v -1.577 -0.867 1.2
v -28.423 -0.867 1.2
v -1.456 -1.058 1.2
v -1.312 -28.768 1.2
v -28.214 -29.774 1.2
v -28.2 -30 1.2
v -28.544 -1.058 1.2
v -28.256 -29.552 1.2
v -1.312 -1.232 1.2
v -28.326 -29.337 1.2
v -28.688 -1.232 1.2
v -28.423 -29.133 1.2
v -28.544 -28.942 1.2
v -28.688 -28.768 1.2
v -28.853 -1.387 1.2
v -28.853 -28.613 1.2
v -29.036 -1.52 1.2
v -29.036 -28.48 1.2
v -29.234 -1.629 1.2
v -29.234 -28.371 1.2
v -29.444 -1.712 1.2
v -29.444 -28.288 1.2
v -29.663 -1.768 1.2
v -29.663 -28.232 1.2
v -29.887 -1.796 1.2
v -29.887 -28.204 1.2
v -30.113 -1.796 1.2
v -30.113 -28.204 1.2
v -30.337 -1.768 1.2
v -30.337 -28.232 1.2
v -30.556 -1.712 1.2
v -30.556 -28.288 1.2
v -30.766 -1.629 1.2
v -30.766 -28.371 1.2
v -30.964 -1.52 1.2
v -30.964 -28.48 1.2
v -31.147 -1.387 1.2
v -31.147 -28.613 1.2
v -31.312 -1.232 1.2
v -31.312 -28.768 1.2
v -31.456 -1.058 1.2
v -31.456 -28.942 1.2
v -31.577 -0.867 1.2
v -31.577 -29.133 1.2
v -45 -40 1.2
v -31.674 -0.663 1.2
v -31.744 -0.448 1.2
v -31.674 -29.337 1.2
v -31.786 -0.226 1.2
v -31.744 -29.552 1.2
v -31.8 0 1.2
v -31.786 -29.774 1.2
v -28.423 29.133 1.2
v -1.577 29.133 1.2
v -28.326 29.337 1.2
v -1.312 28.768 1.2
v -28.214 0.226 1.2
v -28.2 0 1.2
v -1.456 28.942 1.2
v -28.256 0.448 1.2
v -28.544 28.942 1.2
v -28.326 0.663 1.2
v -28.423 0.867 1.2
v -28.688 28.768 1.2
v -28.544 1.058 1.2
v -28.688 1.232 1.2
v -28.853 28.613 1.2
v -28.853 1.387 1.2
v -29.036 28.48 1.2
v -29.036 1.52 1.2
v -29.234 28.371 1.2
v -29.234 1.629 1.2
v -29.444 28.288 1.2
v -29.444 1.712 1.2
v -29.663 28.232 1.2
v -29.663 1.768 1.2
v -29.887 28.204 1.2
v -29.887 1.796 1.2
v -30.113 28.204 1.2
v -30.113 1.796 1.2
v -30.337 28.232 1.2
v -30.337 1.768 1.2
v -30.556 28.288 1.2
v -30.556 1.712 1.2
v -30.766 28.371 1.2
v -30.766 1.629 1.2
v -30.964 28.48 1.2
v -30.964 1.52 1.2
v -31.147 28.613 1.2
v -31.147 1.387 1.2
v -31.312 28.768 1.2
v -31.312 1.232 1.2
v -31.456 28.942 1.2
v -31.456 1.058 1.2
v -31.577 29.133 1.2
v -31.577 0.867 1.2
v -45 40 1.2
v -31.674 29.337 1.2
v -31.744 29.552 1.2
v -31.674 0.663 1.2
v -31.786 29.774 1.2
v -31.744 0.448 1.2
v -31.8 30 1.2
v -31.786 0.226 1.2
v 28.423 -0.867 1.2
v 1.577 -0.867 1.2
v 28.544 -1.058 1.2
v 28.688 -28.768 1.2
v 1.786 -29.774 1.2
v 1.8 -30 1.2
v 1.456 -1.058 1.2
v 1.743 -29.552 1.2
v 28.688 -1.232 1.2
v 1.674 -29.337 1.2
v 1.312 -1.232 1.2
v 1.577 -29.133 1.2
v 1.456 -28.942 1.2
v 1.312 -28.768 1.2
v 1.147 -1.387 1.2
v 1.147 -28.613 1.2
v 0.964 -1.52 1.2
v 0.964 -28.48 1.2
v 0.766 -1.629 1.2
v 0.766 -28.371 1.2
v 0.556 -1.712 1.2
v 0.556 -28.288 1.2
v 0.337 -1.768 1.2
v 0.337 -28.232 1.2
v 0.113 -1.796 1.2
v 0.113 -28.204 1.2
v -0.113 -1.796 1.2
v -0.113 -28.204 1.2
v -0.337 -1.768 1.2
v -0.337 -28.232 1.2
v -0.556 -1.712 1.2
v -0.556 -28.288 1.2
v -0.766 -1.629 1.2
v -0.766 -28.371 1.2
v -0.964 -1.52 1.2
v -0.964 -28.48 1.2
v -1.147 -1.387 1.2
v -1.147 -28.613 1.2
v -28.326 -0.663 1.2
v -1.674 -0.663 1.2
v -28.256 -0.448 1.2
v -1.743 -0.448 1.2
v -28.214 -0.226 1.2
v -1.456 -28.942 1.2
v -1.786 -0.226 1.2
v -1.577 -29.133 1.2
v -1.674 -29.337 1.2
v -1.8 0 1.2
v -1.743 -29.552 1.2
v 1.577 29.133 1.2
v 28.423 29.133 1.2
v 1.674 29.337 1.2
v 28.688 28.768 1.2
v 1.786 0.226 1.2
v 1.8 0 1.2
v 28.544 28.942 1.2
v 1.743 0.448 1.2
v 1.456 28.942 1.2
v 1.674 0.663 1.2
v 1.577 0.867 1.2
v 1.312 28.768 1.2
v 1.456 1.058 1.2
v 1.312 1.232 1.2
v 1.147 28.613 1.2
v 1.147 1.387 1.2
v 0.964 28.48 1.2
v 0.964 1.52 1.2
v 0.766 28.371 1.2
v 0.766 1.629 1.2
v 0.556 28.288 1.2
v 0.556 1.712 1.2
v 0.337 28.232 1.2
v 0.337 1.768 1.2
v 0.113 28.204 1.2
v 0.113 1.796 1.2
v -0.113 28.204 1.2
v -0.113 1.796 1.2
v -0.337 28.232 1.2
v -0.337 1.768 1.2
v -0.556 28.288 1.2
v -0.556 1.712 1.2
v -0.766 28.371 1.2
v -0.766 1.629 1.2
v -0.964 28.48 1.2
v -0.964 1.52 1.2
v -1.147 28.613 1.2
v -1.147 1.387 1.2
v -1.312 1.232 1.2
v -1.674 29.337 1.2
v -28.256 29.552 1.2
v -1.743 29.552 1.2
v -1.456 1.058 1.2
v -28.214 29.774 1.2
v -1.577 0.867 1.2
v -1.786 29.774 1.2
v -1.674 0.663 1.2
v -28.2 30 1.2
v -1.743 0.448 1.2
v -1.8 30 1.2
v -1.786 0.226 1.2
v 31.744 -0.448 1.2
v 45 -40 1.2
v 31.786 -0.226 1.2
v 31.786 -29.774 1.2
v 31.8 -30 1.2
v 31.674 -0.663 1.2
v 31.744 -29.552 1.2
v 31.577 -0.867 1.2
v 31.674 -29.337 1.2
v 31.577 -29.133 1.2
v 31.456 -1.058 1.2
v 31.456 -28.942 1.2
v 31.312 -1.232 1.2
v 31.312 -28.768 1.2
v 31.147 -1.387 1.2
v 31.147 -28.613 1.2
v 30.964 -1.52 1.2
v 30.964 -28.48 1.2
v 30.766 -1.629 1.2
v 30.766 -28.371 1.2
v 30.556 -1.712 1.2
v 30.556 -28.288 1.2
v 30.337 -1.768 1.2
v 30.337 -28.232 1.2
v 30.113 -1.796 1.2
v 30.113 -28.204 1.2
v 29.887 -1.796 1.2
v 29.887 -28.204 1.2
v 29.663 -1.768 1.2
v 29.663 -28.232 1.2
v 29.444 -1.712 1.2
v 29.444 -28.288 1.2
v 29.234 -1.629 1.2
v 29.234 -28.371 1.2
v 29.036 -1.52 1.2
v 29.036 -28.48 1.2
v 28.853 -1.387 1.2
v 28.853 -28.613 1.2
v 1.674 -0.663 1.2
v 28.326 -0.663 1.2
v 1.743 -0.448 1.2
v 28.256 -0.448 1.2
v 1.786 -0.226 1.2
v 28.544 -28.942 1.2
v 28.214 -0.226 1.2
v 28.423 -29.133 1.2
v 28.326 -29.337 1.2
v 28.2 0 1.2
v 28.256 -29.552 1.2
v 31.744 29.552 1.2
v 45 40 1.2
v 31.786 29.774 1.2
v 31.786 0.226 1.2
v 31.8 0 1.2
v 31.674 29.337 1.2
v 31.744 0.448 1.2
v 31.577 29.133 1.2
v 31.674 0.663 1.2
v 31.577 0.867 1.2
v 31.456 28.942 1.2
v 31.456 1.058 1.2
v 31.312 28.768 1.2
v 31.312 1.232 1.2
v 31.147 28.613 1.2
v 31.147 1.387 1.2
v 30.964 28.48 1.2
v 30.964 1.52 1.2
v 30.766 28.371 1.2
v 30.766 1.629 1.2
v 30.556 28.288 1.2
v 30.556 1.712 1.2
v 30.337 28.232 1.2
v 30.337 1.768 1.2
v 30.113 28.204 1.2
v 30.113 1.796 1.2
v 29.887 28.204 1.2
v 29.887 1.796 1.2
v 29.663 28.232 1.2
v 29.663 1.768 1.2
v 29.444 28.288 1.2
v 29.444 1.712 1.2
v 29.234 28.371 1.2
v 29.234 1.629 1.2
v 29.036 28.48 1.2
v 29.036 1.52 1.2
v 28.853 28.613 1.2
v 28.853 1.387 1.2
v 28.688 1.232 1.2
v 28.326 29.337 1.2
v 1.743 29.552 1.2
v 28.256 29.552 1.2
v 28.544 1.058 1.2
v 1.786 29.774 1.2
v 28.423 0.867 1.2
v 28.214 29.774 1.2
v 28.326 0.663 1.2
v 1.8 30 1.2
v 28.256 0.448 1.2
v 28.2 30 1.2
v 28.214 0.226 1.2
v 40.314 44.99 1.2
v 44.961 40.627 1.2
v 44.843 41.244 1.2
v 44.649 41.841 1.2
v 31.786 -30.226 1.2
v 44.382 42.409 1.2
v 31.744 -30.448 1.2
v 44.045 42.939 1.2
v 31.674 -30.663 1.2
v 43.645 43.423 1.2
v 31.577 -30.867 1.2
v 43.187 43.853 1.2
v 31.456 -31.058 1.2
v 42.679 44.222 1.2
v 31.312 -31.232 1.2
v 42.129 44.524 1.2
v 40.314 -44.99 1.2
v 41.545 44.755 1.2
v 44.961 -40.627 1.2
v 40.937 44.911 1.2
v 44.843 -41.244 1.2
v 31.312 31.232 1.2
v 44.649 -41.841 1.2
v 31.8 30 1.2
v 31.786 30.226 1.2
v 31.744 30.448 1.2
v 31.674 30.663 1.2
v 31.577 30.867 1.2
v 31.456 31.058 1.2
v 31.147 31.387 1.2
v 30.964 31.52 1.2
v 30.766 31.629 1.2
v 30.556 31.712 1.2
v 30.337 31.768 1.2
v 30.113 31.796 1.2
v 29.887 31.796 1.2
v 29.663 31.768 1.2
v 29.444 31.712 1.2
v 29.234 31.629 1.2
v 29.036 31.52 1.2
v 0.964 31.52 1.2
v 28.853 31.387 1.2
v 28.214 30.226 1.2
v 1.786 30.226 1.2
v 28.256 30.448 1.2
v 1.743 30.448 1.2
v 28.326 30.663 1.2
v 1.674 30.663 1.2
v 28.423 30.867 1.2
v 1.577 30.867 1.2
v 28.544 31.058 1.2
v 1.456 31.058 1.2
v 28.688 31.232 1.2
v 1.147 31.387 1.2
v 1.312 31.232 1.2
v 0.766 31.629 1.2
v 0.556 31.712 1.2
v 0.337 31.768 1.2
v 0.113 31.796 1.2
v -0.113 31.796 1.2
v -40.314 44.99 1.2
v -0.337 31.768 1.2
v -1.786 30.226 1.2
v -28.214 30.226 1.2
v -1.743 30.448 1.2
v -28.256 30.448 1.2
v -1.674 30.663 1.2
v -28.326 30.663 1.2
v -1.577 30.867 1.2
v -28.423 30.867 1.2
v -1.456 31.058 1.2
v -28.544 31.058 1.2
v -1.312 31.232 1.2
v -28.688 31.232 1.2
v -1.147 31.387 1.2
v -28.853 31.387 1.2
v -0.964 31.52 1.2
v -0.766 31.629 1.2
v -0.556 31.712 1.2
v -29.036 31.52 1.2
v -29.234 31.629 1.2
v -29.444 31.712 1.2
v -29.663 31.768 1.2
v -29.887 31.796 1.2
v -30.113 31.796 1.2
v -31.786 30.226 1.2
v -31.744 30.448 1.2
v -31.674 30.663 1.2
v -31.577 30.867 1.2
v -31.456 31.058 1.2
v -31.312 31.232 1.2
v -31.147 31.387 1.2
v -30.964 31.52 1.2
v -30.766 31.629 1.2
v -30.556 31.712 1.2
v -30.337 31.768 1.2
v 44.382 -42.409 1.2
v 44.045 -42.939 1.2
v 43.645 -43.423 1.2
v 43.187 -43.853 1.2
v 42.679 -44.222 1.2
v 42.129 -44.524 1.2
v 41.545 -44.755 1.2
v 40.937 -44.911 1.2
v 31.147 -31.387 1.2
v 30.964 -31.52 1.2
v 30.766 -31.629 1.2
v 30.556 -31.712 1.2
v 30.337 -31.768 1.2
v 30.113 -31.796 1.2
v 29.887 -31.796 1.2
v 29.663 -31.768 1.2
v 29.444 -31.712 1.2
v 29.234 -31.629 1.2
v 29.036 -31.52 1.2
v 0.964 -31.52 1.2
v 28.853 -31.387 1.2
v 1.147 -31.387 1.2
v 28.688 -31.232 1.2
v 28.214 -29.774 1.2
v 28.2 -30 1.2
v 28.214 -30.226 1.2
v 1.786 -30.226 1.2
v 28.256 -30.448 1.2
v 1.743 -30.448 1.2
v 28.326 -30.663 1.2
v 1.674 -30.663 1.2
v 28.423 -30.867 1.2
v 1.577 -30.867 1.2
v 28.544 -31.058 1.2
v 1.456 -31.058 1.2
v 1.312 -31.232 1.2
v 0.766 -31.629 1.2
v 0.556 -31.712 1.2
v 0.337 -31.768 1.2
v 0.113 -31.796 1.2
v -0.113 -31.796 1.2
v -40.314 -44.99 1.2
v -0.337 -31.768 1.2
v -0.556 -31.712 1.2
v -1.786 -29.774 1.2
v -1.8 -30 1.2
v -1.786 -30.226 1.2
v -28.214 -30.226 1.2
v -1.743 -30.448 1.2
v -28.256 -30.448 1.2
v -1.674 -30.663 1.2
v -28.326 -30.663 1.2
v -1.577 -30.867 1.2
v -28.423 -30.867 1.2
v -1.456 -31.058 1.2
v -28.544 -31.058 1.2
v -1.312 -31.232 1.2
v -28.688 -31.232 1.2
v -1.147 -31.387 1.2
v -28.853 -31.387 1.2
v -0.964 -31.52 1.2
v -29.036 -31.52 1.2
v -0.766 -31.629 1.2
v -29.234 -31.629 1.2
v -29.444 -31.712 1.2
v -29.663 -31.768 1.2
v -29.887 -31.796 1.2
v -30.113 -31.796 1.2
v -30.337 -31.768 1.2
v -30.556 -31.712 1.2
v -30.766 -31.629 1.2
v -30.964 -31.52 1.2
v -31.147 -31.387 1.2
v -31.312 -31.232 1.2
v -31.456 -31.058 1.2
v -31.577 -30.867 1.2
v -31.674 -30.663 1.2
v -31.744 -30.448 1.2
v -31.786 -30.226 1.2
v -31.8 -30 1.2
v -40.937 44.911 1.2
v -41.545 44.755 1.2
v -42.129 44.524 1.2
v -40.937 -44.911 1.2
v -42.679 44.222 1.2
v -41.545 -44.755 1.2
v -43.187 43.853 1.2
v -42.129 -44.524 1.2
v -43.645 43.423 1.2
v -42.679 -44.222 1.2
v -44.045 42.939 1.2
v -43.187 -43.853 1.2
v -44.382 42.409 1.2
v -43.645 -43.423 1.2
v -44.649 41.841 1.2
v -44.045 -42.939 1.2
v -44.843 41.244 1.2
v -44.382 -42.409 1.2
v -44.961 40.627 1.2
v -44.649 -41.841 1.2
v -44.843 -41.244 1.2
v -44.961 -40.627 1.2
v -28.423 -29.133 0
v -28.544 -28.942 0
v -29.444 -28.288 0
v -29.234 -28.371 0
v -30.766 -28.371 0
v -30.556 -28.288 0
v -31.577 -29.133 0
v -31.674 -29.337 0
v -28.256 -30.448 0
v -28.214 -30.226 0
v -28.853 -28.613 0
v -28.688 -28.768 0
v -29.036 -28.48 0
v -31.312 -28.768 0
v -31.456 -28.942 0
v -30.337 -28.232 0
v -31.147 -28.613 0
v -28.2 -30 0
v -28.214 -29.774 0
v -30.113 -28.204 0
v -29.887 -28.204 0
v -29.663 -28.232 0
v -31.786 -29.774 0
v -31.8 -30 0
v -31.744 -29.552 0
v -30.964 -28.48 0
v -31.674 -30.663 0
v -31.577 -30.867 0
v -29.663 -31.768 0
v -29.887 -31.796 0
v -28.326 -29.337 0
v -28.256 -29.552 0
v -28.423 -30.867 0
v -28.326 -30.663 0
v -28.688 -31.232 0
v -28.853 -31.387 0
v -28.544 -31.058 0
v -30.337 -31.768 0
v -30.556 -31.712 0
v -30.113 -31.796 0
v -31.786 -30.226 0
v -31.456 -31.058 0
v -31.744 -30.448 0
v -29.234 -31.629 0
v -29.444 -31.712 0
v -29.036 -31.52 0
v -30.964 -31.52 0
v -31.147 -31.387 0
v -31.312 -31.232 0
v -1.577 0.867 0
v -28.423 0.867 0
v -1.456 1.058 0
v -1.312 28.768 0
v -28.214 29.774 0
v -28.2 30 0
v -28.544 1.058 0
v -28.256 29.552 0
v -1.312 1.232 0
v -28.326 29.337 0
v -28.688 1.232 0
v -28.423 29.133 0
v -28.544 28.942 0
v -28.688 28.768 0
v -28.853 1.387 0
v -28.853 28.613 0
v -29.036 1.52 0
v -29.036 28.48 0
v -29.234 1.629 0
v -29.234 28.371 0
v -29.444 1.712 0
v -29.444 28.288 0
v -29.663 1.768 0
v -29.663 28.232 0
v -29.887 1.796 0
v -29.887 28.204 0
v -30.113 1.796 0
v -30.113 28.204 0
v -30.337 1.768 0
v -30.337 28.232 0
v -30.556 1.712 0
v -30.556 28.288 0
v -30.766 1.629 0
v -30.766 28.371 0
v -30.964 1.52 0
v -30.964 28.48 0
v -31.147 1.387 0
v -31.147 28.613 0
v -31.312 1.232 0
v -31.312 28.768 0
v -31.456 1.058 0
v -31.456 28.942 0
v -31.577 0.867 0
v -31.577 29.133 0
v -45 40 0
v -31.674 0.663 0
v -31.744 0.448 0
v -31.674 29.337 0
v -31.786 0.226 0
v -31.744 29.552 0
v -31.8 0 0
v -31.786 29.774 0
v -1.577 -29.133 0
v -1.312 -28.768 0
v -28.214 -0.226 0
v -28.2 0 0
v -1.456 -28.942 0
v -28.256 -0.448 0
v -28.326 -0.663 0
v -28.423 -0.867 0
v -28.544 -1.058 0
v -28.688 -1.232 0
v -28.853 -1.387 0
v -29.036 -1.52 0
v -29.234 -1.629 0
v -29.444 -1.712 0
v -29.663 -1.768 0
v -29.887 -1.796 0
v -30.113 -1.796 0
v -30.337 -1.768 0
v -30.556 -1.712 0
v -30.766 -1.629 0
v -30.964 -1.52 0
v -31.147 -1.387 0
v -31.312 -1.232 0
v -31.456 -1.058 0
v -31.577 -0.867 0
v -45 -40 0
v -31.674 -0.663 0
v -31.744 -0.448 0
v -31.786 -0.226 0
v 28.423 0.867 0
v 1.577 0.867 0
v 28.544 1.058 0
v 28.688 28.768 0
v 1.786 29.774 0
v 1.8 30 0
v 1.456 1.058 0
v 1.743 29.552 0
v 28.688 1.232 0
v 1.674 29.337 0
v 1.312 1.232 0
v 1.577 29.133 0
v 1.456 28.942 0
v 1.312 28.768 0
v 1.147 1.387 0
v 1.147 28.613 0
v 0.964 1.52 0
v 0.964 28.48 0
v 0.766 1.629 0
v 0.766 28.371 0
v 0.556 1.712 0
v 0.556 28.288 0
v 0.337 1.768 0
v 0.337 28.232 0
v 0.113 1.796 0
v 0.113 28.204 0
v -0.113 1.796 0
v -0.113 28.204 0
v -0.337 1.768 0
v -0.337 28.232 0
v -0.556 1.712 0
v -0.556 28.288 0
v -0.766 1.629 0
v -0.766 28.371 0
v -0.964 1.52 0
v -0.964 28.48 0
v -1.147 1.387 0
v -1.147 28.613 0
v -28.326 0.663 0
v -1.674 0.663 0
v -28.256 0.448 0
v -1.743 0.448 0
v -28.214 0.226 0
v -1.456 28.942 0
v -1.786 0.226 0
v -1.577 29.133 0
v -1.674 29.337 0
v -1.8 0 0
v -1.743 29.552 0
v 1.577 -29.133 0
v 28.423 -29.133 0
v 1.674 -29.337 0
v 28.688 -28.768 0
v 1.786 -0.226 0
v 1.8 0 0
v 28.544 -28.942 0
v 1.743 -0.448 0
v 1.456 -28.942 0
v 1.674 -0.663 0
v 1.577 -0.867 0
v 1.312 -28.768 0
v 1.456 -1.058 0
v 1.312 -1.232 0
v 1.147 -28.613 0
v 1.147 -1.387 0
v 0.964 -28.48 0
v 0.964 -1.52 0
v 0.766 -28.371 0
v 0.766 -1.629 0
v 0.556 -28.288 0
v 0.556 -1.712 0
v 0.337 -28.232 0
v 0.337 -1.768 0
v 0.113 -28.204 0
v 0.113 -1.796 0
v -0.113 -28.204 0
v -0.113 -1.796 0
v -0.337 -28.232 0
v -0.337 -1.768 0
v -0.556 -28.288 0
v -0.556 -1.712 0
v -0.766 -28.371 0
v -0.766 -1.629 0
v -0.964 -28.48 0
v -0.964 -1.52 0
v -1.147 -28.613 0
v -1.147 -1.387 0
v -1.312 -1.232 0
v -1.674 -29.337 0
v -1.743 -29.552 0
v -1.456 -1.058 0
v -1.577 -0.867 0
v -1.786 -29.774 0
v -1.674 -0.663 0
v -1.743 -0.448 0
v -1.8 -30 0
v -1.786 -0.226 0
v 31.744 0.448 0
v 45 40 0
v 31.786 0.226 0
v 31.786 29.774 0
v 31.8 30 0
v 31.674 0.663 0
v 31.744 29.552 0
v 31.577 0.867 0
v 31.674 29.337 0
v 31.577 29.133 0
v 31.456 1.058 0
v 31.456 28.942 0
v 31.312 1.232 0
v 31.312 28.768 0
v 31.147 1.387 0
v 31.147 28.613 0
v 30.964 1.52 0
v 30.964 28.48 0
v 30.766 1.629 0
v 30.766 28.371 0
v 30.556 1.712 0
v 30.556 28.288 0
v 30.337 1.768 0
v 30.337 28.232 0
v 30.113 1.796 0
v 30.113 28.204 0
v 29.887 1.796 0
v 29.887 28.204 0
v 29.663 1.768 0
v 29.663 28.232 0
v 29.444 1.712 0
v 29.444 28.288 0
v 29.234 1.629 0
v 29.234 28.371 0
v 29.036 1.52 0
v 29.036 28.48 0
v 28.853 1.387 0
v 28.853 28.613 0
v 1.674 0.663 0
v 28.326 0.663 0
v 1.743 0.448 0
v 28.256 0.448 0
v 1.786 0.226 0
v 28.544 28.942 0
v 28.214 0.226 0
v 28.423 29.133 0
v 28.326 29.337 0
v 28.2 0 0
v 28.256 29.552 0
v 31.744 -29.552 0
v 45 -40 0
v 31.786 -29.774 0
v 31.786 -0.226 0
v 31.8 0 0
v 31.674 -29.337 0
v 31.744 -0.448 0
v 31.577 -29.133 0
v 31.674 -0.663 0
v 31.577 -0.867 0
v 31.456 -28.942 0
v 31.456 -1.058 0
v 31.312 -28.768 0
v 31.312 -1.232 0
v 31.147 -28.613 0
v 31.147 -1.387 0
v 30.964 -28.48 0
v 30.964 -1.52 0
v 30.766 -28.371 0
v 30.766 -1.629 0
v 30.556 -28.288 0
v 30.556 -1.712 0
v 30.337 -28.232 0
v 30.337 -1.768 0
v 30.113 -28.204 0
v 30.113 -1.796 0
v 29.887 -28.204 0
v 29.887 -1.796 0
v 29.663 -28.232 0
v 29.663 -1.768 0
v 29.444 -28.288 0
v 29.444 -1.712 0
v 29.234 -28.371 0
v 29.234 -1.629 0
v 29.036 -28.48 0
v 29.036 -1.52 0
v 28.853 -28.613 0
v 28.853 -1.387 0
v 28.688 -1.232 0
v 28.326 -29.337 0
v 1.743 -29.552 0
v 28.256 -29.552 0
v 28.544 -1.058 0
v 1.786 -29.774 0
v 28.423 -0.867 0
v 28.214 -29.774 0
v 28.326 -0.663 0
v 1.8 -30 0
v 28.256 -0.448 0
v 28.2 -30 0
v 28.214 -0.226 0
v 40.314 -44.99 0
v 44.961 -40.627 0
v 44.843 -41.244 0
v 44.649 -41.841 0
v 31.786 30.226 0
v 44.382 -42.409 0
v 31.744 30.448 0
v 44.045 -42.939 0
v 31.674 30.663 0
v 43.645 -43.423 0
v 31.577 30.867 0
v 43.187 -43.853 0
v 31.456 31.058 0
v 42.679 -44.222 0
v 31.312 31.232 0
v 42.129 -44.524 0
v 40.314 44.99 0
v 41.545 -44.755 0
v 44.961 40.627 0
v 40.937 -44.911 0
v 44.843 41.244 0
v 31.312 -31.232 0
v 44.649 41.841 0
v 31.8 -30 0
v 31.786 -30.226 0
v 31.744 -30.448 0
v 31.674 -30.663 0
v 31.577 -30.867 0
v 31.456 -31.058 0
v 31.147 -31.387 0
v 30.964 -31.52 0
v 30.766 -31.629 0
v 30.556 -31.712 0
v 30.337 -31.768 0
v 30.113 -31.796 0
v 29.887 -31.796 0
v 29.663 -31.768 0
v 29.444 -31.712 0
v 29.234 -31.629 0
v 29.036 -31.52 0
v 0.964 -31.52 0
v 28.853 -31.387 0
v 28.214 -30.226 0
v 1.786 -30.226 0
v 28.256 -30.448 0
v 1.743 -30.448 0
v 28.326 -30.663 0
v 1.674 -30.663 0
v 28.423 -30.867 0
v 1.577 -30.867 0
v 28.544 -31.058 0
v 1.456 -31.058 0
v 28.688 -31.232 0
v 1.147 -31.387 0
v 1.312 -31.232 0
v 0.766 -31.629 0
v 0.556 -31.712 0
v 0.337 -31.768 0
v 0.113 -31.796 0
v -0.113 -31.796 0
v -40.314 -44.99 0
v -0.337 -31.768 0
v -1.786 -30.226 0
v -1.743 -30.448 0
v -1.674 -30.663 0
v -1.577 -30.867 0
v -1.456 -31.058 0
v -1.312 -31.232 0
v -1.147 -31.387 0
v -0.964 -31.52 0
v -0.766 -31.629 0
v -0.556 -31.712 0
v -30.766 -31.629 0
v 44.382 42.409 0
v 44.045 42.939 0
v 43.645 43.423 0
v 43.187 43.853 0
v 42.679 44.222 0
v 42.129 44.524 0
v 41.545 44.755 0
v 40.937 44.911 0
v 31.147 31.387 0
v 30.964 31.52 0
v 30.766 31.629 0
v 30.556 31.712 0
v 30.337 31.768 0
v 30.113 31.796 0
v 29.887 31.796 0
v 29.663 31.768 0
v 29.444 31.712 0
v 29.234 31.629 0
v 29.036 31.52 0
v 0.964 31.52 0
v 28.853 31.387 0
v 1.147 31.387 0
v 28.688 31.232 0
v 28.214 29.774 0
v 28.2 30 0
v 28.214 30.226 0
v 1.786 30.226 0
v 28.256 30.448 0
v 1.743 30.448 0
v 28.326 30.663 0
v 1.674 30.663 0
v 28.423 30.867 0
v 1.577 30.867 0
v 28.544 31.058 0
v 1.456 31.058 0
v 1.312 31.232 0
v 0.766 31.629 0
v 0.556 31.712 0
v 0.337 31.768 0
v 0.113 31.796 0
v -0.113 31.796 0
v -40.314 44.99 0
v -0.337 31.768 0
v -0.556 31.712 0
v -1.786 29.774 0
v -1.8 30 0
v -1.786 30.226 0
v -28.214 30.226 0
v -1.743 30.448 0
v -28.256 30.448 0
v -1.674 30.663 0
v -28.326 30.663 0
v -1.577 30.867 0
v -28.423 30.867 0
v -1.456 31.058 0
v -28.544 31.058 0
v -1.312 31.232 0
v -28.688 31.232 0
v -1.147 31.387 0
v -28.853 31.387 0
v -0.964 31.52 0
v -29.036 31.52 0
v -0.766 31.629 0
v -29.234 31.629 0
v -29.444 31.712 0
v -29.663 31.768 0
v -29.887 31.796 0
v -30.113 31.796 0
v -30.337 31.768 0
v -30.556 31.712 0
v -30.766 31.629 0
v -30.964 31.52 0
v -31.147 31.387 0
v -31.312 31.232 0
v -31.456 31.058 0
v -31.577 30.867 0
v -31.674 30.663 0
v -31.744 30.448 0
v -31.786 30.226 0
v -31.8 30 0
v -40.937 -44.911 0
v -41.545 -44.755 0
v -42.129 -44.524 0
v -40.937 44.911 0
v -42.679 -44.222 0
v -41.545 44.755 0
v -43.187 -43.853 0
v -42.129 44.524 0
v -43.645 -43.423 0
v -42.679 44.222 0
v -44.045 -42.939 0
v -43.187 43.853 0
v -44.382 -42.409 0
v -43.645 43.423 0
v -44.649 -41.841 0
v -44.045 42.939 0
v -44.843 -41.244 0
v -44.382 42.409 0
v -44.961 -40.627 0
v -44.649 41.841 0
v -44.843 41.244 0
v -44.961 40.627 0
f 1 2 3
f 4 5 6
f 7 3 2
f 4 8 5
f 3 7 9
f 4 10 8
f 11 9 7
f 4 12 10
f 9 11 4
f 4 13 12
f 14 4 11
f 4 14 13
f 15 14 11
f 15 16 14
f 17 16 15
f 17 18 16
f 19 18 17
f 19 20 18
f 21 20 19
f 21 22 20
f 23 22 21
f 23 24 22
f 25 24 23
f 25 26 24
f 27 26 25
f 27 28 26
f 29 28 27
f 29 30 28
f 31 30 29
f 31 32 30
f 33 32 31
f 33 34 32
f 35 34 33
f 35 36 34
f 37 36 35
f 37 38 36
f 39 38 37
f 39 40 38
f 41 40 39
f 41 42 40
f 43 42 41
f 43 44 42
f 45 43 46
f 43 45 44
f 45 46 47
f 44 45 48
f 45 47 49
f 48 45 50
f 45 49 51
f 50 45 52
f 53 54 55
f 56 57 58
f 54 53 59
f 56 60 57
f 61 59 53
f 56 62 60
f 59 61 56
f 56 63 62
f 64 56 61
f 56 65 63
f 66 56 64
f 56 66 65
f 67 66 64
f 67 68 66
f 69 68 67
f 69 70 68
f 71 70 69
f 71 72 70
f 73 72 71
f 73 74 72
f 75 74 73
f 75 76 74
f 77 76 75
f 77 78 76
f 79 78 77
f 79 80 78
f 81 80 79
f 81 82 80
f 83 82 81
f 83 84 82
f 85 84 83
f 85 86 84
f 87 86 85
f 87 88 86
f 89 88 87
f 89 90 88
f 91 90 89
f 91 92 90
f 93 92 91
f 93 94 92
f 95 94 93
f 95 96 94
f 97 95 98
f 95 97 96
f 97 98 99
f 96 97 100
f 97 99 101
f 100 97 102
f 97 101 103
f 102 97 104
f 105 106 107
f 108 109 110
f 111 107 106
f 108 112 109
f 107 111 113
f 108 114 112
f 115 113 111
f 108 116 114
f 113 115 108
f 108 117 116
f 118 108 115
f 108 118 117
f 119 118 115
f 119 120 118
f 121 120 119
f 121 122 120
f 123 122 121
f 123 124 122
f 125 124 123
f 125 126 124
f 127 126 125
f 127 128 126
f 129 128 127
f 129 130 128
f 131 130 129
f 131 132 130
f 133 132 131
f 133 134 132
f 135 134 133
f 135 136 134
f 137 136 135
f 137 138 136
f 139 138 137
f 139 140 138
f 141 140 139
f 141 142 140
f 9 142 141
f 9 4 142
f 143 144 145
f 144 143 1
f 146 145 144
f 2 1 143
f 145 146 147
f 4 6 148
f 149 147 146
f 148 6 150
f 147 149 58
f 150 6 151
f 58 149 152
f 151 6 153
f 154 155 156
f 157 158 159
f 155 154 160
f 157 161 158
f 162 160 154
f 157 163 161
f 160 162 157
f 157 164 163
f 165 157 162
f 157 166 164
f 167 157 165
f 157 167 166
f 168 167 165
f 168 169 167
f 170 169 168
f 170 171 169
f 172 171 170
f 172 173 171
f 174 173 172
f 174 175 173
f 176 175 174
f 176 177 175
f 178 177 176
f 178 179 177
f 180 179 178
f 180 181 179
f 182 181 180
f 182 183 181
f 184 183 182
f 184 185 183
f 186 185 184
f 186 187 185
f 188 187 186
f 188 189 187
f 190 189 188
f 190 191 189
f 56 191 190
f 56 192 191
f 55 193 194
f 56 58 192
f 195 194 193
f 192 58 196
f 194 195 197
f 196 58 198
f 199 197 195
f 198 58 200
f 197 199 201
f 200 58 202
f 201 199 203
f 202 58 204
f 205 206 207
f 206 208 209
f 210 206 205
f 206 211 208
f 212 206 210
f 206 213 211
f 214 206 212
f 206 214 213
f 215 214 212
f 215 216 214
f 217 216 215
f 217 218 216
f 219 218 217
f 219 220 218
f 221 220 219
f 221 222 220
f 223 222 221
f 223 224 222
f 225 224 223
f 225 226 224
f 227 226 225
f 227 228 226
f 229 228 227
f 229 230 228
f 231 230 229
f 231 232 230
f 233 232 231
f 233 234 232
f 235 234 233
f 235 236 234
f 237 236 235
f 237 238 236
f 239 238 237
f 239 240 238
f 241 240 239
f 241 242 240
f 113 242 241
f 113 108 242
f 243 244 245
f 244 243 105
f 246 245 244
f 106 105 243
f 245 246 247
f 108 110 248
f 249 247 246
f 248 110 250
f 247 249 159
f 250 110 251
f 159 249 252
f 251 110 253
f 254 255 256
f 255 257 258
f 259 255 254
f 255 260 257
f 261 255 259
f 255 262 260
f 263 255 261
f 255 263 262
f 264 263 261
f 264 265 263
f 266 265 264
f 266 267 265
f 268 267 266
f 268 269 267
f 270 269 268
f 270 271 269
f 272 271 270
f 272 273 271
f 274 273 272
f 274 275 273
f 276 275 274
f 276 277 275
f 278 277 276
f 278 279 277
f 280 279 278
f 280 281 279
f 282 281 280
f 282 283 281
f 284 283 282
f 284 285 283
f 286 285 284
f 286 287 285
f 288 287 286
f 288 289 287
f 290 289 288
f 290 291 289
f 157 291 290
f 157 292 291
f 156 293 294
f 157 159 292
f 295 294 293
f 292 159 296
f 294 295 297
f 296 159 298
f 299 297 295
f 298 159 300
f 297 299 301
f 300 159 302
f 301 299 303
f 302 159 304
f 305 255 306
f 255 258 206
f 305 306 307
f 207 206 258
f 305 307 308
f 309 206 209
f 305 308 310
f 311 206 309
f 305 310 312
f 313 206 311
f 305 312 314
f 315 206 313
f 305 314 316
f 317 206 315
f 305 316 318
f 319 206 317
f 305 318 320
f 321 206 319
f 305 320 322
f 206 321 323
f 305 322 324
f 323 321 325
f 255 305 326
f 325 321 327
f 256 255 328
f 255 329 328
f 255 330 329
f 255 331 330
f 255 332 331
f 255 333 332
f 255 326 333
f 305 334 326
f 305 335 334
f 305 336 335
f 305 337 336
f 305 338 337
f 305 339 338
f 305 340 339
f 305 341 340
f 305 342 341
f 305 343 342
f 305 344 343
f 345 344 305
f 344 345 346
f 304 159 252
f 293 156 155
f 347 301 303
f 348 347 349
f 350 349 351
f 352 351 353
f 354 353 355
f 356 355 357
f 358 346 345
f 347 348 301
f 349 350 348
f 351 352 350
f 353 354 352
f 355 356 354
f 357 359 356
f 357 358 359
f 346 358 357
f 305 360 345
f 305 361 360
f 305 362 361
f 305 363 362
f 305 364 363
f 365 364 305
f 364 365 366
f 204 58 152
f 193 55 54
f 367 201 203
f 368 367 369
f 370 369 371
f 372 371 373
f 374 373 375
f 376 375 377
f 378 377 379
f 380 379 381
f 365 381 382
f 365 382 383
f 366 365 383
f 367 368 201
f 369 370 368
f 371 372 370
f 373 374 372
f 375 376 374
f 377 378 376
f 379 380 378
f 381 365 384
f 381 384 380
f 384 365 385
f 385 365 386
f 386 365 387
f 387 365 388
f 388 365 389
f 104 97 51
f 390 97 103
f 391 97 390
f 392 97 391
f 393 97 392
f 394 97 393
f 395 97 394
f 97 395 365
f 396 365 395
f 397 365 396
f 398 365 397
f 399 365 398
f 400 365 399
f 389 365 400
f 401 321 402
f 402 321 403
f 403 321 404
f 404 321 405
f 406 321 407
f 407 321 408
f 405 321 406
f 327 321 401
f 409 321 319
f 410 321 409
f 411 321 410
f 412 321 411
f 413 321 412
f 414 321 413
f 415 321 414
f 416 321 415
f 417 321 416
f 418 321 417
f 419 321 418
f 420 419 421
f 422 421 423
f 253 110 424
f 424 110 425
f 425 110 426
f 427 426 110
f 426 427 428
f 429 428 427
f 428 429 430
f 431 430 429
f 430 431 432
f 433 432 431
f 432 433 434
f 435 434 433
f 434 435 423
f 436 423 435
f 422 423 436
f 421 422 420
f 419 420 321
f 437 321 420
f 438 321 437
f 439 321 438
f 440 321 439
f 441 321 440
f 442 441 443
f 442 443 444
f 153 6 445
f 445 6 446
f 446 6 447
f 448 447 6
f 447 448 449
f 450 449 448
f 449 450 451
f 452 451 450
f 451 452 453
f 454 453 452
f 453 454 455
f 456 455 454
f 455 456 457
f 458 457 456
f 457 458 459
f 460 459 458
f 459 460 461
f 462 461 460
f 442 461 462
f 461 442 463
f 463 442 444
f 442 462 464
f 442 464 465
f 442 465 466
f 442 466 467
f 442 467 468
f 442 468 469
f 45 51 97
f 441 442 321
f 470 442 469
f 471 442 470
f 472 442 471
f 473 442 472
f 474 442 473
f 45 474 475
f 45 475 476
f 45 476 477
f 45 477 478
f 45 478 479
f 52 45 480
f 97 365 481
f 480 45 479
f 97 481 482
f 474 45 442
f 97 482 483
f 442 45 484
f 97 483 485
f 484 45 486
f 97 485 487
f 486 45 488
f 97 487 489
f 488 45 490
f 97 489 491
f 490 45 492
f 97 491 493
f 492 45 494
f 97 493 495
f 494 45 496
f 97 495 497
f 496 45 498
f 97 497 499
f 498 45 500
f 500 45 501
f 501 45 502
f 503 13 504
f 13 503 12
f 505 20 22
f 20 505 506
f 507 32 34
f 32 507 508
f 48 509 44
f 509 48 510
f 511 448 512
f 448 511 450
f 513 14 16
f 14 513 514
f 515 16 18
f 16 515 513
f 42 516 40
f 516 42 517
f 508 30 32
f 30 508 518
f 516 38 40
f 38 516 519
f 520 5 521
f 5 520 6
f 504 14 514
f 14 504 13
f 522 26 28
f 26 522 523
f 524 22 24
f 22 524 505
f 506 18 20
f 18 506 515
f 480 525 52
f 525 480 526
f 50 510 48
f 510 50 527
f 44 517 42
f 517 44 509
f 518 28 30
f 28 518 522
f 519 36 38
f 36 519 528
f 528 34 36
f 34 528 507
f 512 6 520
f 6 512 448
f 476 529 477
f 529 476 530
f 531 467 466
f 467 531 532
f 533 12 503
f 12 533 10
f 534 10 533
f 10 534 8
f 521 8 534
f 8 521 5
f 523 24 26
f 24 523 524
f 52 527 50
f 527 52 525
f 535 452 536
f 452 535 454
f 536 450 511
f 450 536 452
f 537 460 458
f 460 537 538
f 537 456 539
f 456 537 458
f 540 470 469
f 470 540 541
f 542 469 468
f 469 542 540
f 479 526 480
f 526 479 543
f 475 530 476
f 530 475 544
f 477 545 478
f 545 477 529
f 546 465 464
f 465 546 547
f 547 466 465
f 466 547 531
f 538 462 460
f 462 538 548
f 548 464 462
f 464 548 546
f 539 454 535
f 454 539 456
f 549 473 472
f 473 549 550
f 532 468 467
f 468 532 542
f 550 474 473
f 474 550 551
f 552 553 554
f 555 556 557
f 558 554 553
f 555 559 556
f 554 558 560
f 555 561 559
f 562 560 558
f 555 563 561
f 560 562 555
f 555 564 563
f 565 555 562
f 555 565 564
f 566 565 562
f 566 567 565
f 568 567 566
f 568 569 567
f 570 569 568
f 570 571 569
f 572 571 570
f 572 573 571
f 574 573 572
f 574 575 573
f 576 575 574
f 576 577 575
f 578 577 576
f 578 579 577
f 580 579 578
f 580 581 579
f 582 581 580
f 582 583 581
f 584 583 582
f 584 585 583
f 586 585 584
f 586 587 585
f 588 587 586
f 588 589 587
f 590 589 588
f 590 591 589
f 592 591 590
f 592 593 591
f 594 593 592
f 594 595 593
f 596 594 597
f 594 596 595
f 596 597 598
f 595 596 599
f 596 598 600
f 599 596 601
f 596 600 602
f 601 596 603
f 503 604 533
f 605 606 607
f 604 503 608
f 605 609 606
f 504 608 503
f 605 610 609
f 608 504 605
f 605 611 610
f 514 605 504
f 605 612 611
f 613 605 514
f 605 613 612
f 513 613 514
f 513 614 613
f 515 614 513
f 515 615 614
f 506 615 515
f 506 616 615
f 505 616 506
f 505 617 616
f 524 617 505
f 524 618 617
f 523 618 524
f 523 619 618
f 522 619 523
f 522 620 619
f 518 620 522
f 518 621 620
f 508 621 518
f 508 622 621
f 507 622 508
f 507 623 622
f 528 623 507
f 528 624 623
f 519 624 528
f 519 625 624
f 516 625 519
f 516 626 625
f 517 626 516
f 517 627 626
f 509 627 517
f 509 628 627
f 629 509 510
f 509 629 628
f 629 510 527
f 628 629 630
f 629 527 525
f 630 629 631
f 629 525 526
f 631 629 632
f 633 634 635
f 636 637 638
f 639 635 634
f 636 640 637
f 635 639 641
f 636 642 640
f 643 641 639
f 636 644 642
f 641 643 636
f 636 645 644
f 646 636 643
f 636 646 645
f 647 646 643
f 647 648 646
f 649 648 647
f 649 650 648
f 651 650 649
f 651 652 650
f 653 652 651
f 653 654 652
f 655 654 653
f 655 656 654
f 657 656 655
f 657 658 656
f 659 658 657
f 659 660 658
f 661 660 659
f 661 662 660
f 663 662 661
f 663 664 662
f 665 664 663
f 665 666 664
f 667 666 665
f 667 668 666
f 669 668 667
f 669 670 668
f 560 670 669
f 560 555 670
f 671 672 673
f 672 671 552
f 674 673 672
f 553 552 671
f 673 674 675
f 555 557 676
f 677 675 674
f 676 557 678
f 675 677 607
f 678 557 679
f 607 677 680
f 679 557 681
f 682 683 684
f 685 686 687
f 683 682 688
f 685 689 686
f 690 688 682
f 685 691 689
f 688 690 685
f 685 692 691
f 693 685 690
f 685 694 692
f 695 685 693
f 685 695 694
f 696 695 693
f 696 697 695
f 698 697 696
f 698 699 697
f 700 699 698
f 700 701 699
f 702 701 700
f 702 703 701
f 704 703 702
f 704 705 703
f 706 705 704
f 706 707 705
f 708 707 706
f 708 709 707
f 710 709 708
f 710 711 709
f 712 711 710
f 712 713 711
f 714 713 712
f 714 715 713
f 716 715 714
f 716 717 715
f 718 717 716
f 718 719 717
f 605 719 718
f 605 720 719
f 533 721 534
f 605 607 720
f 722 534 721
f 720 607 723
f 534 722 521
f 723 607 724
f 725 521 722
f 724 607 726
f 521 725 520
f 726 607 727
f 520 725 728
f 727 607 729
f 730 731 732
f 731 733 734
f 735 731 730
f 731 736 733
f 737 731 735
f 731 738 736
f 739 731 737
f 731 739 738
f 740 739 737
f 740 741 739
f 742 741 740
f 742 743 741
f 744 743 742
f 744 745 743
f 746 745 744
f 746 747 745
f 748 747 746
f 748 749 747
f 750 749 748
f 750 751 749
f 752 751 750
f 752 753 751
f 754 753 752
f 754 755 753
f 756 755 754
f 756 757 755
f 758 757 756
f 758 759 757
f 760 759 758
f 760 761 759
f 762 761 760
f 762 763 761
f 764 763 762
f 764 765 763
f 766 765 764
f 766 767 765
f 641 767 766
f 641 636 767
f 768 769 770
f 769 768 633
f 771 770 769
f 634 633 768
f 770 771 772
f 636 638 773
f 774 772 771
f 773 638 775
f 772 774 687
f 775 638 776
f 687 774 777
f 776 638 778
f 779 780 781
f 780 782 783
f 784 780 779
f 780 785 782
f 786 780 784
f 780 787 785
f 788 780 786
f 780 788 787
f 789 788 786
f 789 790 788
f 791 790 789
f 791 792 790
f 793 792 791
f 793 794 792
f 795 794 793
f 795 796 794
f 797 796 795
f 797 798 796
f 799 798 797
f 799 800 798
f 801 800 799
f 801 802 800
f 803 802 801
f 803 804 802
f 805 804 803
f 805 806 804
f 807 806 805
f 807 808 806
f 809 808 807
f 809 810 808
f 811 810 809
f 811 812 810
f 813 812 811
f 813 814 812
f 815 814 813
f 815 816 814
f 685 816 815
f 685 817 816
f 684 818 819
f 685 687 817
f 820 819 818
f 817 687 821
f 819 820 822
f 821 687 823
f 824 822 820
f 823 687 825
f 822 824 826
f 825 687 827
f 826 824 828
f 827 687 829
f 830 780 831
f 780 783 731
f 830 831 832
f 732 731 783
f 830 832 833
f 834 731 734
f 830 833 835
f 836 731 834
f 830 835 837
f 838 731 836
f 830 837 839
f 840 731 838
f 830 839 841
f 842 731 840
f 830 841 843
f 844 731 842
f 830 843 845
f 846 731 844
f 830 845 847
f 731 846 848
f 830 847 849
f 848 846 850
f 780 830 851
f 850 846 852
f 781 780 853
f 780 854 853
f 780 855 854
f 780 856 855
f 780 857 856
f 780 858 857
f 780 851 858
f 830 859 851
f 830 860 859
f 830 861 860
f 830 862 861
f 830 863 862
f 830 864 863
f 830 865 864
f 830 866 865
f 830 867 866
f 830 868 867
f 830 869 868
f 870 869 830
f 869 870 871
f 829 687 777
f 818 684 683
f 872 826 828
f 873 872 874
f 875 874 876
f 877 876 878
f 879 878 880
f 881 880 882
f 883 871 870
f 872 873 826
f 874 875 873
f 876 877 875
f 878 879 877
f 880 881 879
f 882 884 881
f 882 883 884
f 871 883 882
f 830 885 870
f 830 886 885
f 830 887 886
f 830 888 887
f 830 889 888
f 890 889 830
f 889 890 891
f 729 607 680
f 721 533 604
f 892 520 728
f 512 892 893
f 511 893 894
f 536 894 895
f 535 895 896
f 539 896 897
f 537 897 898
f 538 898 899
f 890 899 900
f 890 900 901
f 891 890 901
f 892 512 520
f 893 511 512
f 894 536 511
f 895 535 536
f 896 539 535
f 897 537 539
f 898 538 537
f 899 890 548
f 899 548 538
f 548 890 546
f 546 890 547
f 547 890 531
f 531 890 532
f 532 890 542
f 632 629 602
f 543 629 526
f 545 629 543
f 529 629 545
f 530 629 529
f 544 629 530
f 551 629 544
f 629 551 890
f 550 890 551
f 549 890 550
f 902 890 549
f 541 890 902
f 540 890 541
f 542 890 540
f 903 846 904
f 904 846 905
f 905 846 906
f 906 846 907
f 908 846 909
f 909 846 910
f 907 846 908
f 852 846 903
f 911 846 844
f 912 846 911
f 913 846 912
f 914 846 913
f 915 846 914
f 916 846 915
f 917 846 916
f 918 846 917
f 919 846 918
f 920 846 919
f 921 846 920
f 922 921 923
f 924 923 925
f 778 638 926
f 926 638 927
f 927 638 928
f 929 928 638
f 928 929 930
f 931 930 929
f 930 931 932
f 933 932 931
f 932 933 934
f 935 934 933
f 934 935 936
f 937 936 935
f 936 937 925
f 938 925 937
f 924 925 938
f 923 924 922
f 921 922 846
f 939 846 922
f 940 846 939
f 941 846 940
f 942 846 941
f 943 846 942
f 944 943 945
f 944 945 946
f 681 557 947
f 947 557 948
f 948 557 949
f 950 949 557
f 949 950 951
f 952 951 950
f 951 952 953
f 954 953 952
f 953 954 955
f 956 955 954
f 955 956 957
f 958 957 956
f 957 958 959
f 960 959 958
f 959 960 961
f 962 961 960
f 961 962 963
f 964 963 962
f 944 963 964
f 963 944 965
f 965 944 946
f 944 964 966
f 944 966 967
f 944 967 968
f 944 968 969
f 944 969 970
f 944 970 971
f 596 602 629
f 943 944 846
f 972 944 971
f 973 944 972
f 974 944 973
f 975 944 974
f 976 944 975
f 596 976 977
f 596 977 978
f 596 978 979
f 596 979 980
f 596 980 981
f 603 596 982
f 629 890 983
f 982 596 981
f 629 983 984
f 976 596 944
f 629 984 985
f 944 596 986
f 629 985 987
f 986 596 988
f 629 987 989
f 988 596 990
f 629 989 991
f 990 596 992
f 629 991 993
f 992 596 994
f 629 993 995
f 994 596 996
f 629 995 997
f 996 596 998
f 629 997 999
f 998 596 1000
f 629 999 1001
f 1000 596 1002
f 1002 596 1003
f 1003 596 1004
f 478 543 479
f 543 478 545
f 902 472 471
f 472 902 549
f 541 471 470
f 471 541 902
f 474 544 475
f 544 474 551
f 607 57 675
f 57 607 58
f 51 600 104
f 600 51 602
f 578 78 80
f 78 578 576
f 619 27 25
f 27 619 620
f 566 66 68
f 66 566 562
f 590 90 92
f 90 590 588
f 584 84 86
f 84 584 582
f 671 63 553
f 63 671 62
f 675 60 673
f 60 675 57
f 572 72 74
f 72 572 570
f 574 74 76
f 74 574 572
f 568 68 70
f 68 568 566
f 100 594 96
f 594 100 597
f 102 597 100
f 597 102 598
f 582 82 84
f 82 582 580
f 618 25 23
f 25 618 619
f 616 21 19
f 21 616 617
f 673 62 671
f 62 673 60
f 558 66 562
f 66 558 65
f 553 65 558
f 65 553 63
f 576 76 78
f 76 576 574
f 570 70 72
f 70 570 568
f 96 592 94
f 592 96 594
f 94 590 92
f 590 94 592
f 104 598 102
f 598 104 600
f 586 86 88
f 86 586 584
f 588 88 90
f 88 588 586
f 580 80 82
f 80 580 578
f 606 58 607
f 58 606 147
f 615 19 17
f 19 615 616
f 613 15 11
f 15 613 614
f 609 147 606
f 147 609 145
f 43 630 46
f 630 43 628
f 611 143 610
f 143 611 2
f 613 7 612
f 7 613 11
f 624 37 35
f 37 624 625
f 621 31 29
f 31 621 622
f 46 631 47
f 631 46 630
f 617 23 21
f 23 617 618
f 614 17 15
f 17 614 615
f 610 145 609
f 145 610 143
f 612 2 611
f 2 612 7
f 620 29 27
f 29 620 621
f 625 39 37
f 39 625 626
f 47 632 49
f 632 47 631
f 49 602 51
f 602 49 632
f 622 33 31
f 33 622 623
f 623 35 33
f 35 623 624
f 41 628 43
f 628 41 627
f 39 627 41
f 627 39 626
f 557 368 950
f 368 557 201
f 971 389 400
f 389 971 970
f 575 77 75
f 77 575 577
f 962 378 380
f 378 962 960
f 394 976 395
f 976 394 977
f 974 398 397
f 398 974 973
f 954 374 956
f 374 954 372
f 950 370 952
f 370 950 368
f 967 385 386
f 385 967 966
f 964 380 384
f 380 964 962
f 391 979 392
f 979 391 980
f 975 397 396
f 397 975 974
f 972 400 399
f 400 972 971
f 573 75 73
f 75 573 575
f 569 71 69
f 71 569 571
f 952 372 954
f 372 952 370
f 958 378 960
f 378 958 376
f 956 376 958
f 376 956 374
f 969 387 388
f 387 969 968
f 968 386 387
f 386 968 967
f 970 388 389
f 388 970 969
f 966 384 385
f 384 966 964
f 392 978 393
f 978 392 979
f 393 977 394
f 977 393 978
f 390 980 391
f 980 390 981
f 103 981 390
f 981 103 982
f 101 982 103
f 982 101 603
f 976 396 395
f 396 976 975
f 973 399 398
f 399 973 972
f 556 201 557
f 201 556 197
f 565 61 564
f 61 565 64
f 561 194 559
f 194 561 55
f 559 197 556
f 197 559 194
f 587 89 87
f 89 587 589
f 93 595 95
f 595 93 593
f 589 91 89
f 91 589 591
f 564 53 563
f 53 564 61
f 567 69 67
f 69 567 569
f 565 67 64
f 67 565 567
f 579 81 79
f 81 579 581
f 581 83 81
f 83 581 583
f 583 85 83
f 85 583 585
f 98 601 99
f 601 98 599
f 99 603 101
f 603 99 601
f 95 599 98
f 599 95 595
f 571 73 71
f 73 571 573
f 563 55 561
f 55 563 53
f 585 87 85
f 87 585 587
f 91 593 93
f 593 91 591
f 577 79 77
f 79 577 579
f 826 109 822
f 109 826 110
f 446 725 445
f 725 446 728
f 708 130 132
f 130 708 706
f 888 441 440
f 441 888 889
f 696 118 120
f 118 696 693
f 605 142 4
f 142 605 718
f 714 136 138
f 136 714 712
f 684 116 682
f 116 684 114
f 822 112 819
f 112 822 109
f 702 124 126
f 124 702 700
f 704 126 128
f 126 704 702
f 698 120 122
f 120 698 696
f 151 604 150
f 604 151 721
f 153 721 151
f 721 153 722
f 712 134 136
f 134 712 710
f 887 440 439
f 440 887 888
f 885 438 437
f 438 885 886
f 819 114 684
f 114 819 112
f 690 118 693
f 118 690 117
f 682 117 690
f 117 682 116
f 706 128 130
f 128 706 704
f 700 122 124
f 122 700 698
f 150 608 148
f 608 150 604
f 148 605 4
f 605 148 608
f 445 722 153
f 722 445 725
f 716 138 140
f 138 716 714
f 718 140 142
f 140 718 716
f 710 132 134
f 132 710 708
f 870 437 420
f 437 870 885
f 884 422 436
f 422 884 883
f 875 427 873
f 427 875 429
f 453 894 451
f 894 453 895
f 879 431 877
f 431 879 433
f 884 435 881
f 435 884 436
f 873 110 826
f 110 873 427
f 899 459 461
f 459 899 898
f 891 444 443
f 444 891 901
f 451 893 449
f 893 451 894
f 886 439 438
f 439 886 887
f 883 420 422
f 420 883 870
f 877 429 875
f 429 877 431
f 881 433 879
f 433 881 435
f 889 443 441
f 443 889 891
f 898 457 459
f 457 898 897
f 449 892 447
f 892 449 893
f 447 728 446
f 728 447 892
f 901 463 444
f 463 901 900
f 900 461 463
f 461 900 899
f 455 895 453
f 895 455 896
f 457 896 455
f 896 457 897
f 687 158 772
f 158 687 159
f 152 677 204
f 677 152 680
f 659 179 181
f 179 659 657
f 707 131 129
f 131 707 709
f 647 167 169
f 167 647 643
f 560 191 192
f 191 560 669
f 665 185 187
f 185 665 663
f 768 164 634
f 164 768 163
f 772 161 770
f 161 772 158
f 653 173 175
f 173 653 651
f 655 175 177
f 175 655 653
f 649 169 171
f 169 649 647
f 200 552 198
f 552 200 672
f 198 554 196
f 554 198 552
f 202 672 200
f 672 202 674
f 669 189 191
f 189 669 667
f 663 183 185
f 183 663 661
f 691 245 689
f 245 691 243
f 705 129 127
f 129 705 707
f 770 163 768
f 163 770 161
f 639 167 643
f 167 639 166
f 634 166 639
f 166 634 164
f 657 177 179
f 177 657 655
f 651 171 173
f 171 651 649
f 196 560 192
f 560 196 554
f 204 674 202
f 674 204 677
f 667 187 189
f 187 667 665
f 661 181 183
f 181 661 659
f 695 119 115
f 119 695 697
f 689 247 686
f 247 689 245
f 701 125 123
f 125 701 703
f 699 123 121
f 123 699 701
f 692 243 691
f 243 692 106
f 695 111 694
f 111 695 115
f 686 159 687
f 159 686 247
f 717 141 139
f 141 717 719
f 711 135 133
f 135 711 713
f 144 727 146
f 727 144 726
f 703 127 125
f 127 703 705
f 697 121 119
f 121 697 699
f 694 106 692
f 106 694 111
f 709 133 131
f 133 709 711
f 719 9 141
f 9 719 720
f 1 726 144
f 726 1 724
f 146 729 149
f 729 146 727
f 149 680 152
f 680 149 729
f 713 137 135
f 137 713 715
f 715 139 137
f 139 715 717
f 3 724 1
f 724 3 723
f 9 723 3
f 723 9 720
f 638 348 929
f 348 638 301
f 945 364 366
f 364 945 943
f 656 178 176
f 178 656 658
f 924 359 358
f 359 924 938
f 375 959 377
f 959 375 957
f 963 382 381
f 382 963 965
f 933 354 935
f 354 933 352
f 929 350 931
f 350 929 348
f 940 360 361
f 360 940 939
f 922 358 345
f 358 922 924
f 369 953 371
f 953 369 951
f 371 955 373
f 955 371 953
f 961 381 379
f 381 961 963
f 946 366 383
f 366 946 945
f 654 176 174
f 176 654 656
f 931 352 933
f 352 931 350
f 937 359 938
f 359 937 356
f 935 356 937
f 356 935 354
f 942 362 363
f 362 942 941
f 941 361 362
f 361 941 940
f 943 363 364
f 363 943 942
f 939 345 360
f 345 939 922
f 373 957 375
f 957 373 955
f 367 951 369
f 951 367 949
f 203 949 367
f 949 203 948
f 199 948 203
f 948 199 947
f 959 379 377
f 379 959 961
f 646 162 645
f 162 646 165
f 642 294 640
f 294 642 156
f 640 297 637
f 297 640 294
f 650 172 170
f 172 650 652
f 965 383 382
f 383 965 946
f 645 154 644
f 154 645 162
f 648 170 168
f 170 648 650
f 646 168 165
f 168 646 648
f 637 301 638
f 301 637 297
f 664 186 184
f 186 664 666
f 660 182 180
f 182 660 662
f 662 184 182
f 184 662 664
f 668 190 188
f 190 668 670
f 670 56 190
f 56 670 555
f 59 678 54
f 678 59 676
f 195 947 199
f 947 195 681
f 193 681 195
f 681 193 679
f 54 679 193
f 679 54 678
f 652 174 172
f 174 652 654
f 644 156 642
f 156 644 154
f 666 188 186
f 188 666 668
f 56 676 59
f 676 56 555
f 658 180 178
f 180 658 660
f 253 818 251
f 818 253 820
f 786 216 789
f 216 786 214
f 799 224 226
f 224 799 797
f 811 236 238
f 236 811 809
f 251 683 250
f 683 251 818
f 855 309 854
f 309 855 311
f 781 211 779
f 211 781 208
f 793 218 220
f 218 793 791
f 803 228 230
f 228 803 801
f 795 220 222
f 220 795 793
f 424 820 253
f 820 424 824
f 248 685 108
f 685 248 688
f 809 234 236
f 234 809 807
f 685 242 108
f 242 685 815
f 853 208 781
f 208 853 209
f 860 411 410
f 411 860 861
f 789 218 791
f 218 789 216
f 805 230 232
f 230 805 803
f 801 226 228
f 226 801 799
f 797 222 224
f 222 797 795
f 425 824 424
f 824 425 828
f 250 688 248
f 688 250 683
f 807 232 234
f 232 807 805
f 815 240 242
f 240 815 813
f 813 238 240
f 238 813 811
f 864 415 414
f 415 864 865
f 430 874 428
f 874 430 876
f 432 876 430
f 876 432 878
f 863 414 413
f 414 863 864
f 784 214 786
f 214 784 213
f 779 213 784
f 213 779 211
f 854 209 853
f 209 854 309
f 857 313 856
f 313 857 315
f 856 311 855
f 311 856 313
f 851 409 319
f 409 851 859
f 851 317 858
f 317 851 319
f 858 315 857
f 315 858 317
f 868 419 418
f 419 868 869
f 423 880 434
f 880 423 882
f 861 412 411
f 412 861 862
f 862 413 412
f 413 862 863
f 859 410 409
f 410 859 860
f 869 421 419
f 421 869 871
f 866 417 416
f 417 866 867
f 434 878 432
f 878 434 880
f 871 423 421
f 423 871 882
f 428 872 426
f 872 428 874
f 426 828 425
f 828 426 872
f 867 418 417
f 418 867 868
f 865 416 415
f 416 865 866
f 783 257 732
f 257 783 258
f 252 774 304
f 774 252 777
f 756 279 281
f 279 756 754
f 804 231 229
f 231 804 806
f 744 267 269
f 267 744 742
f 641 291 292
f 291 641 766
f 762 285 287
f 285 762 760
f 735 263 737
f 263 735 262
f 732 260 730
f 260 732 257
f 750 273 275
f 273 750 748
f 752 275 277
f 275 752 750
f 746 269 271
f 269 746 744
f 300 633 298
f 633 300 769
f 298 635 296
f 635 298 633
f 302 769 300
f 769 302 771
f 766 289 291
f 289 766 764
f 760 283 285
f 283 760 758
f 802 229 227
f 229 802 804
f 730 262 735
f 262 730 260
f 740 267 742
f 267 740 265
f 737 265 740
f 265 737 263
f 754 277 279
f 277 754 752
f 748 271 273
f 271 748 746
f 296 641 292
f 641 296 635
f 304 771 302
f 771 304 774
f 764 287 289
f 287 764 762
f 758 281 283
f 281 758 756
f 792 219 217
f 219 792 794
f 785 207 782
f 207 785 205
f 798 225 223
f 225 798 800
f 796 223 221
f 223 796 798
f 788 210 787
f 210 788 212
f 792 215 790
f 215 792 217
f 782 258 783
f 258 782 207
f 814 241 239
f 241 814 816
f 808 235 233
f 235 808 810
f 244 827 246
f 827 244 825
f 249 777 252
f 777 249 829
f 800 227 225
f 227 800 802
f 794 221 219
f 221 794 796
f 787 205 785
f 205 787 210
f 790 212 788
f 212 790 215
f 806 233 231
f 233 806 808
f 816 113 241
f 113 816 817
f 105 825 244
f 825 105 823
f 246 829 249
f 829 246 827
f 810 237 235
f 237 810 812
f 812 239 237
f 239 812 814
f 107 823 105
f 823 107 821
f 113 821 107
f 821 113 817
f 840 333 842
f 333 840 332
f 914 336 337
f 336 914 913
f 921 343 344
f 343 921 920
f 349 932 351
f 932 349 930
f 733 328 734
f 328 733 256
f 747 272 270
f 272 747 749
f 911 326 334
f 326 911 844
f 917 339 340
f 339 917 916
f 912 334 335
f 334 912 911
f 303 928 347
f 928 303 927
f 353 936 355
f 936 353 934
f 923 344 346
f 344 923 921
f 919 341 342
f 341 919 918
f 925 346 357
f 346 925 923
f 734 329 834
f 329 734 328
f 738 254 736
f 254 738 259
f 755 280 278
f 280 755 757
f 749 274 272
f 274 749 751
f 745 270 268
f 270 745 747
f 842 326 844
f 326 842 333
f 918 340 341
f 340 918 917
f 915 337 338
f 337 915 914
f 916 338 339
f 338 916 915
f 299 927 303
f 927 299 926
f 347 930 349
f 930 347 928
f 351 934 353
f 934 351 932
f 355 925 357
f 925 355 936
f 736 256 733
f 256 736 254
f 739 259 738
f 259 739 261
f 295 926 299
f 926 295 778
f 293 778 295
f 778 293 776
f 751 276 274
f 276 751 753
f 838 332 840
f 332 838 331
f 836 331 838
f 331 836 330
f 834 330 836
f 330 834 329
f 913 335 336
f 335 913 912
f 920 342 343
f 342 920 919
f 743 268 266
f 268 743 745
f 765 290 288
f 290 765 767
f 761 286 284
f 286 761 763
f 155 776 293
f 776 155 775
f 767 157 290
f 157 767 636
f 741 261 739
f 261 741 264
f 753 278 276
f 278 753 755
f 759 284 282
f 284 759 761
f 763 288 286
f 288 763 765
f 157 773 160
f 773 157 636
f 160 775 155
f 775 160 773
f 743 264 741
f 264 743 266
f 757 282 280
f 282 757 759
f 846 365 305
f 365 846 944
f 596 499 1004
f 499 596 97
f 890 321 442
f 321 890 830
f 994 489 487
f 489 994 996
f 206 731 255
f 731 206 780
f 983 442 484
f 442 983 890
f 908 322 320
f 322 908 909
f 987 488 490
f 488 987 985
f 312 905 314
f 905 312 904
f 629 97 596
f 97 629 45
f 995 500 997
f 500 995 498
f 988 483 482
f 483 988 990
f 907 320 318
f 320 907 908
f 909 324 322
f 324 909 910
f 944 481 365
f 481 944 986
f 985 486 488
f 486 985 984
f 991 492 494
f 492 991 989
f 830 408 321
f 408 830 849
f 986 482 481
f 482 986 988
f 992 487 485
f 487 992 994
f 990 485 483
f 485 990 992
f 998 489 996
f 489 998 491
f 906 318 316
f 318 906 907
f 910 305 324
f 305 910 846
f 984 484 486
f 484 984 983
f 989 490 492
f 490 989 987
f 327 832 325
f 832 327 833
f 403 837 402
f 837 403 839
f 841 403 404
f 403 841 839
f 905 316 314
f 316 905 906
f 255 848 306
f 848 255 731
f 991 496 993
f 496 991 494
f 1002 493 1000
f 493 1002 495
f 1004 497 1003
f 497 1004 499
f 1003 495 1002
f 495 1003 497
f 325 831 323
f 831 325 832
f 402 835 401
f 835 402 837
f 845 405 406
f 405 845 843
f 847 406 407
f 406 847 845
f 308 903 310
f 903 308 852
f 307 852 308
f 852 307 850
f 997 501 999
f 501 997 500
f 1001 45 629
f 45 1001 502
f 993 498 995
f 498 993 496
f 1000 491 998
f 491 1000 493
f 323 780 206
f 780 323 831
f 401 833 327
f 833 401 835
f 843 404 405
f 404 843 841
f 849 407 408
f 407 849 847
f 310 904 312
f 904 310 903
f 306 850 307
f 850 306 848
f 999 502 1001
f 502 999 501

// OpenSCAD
$fn = 50;


difference() {
	union() {
		hull() {
			translate(v = [-40.0000000000, 40.0000000000, 0]) {
				cylinder(h = 15, r = 5);
			}
			translate(v = [40.0000000000, 40.0000000000, 0]) {
				cylinder(h = 15, r = 5);
			}
			translate(v = [-40.0000000000, -40.0000000000, 0]) {
				cylinder(h = 15, r = 5);
			}
			translate(v = [40.0000000000, -40.0000000000, 0]) {
				cylinder(h = 15, r = 5);
			}
		}
	}
	union() {
		translate(v = [0, 0, 1.2000000000]) {
			hull() {
				translate(v = [-40.0000000000, 40.0000000000, 0]) {
					cylinder(h = 13.8000000000, r = 3.8000000000);
				}
				translate(v = [40.0000000000, 40.0000000000, 0]) {
					cylinder(h = 13.8000000000, r = 3.8000000000);
				}
				translate(v = [-40.0000000000, -40.0000000000, 0]) {
					cylinder(h = 13.8000000000, r = 3.8000000000);
				}
				translate(v = [40.0000000000, -40.0000000000, 0]) {
					cylinder(h = 13.8000000000, r = 3.8000000000);
				}
			}
		}
		#translate(v = [-30.0000000000, -30.0000000000, 0]) {
			cylinder(h = 1.2000000000, r = 1.8000000000);
		}
		#translate(v = [-30.0000000000, 0.0000000000, 0]) {
			cylinder(h = 1.2000000000, r = 1.8000000000);
		}
		#translate(v = [-30.0000000000, 30.0000000000, 0]) {
			cylinder(h = 1.2000000000, r = 1.8000000000);
		}
		#translate(v = [0.0000000000, -30.0000000000, 0]) {
			cylinder(h = 1.2000000000, r = 1.8000000000);
		}
		#cylinder(h = 1.2000000000, r = 1.8000000000);
		#translate(v = [0.0000000000, 30.0000000000, 0]) {
			cylinder(h = 1.2000000000, r = 1.8000000000);
		}
		#translate(v = [30.0000000000, -30.0000000000, 0]) {
			cylinder(h = 1.2000000000, r = 1.8000000000);
		}
		#translate(v = [30.0000000000, 0.0000000000, 0]) {
			cylinder(h = 1.2000000000, r = 1.8000000000);
		}
		#translate(v = [30.0000000000, 30.0000000000, 0]) {
			cylinder(h = 1.2000000000, r = 1.8000000000);
		}
		translate(v = [-250.0000000000, -250.0000000000, 1.2000000000]) {
			cube(size = [500, 500, 500]);
		}
		translate(v = [-250.0000000000, -250.0000000000, 1.2000000000]) {
			cube(size = [500, 500, 500]);
		}
		translate(v = [-250.0000000000, -250.0000000000, 1.2000000000]) {
			cube(size = [500, 500, 500]);
		}
	}
}
